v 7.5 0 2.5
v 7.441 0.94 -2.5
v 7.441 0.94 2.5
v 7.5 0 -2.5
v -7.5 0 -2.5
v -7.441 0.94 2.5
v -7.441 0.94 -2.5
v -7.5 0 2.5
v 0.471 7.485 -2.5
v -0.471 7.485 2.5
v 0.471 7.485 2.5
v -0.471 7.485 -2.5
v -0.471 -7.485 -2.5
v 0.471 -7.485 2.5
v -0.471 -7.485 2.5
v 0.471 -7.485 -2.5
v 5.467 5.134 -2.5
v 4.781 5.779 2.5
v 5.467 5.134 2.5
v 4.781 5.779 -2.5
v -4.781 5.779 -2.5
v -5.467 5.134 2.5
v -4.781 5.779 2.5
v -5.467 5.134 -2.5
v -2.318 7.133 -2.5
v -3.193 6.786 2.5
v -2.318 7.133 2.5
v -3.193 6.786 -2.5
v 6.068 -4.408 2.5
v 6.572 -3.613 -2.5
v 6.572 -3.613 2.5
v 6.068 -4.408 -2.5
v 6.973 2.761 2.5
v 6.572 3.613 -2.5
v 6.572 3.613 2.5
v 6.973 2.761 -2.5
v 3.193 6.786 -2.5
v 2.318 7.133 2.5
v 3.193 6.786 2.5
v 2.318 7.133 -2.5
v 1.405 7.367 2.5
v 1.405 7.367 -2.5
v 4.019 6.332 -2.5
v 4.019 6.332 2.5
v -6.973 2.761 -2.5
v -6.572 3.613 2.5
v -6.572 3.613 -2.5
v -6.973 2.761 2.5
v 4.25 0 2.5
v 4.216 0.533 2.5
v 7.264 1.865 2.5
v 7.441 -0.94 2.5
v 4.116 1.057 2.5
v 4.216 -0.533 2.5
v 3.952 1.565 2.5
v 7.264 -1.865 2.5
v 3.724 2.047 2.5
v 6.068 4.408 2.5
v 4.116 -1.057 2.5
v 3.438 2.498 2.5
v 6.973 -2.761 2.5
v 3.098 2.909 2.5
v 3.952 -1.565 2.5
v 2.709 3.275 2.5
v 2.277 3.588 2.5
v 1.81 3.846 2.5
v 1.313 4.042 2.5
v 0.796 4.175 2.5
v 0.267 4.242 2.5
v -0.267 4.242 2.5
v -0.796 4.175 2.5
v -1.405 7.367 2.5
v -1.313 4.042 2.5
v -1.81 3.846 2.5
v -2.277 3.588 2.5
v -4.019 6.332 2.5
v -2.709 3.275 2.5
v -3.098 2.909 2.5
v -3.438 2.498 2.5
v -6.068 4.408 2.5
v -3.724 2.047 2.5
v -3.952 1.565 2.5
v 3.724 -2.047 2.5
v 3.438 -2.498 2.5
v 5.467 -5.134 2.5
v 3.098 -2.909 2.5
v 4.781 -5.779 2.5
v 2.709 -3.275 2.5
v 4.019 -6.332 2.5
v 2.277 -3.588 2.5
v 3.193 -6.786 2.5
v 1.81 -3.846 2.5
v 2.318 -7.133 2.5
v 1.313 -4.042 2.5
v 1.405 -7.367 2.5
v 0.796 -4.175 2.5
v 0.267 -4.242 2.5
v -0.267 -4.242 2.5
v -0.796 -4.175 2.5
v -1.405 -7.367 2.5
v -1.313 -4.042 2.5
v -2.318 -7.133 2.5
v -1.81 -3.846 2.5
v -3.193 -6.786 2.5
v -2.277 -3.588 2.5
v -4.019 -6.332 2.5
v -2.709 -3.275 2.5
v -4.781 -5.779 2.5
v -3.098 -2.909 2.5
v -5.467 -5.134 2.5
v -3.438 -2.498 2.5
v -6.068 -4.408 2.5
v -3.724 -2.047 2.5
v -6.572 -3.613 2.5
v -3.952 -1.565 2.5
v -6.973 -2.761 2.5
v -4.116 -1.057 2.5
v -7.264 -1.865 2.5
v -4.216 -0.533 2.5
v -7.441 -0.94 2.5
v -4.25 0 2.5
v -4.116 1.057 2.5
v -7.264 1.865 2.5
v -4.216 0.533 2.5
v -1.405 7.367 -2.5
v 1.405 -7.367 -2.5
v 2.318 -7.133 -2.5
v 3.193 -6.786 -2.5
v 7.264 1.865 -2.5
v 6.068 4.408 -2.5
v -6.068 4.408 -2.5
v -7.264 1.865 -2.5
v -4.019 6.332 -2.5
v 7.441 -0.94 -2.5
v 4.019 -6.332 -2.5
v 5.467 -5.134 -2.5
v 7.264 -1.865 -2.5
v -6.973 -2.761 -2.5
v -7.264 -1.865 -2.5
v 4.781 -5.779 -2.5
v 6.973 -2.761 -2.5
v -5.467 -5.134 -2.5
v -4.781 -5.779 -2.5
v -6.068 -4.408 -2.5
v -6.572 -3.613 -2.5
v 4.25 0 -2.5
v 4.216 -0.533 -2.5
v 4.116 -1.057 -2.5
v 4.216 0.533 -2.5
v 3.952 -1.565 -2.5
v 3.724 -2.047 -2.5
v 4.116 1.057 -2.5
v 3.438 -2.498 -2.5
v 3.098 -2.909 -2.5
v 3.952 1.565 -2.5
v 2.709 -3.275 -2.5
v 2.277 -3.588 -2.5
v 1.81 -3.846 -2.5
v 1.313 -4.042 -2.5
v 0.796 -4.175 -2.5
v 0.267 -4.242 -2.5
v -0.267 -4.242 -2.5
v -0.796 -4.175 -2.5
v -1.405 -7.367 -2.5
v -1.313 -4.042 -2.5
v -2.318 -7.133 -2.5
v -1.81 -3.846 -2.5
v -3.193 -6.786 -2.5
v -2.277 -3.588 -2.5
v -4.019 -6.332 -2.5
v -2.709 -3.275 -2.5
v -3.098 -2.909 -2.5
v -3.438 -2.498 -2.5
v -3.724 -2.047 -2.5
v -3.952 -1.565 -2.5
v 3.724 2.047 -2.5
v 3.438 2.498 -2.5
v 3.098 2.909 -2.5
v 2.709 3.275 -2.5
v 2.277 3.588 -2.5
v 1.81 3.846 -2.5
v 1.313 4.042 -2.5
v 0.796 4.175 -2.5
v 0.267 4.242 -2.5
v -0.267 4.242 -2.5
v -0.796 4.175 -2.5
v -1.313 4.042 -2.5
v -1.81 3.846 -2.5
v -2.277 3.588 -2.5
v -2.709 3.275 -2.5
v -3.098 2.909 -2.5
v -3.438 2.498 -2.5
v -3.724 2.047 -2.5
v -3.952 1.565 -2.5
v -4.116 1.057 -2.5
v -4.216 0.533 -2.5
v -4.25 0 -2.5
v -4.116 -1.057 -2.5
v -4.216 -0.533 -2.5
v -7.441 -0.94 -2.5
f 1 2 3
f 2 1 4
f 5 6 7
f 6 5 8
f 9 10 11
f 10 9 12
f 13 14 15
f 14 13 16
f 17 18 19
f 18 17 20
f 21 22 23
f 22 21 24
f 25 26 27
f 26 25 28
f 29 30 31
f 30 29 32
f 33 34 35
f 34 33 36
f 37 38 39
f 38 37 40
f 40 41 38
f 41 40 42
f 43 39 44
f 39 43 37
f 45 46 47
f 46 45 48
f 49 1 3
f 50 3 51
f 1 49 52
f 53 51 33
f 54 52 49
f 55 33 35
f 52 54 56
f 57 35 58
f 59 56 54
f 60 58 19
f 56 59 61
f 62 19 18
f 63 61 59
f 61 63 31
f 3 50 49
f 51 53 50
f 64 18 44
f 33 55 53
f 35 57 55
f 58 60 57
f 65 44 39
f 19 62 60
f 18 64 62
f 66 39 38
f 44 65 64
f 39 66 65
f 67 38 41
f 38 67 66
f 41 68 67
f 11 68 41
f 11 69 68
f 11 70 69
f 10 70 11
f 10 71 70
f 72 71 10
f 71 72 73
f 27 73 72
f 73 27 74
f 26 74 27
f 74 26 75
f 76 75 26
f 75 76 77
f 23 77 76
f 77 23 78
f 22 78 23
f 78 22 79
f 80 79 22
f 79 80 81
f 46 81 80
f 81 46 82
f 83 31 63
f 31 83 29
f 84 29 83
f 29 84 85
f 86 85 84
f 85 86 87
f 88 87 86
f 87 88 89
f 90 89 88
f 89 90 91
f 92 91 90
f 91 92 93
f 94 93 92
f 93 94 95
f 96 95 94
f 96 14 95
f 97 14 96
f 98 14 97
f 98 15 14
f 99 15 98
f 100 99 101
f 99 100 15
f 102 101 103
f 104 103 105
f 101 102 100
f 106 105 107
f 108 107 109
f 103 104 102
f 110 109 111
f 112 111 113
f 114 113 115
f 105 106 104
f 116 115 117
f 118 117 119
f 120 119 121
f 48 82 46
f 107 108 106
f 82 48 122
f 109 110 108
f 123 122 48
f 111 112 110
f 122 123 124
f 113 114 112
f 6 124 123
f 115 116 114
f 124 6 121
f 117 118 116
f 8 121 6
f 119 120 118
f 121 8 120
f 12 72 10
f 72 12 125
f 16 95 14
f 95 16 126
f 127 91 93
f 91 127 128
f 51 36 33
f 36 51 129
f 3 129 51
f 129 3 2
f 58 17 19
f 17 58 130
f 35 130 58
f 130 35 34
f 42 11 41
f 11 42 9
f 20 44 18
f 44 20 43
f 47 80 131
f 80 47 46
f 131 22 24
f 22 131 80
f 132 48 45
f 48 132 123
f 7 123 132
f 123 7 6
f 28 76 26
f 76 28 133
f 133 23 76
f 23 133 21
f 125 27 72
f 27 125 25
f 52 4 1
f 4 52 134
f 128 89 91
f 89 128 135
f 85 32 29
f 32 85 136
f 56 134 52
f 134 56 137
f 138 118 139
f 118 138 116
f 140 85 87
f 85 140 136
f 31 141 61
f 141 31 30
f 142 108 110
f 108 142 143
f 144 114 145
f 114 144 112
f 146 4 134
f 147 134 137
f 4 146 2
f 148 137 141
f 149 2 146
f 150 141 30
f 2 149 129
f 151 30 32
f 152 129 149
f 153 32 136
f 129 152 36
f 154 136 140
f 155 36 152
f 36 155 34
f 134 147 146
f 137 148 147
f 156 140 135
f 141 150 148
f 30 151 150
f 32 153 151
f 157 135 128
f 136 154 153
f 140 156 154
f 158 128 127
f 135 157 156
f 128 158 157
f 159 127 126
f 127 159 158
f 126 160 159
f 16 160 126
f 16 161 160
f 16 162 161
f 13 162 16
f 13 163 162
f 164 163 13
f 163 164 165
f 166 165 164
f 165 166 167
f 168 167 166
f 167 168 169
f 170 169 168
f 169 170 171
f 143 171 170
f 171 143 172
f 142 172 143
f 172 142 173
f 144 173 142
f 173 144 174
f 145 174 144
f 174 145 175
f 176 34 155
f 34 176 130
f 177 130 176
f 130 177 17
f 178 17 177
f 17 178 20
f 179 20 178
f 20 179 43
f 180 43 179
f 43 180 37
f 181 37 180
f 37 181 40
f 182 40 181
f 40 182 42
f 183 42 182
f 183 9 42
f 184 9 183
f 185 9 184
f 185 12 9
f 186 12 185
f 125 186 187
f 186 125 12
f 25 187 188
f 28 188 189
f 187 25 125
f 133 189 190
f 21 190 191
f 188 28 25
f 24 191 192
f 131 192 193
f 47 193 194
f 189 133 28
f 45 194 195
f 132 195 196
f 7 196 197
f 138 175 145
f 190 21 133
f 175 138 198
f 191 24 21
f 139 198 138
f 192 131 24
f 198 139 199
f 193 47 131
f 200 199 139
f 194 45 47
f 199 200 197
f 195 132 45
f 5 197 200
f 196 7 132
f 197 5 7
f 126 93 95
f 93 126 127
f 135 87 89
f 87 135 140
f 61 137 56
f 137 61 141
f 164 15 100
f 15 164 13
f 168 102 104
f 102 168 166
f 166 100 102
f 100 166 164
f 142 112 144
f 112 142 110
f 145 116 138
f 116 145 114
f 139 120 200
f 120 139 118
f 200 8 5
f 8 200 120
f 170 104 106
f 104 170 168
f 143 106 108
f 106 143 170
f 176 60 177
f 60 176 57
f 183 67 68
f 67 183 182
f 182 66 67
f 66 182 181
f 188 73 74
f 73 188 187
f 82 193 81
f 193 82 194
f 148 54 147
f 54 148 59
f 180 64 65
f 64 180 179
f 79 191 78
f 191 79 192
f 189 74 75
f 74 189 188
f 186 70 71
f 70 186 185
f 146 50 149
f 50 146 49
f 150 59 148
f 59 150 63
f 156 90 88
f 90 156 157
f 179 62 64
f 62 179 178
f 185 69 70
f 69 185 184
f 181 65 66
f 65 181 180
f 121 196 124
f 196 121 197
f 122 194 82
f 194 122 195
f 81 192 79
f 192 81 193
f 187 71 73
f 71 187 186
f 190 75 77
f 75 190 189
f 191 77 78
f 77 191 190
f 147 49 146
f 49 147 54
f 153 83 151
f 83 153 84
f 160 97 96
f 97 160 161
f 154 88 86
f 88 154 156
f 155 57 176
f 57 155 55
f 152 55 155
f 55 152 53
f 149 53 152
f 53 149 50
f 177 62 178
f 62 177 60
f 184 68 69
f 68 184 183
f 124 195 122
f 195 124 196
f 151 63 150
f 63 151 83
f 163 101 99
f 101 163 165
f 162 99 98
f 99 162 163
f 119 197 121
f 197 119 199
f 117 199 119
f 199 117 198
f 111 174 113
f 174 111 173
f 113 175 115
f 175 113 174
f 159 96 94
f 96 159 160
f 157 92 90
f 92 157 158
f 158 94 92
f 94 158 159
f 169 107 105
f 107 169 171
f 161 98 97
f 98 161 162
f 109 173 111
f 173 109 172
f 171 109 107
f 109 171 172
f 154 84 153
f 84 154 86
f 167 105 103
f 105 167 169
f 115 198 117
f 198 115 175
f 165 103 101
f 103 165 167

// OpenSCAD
$fn = 50;


difference() {
	union() {
		translate(v = [0, 0, -2.5000000000]) {
			cylinder(h = 5, r = 7.5000000000);
		}
	}
	union() {
		translate(v = [0, 0, -100.0000000000]) {
			cylinder(h = 200, r = 4.2500000000);
		}
	}
}
